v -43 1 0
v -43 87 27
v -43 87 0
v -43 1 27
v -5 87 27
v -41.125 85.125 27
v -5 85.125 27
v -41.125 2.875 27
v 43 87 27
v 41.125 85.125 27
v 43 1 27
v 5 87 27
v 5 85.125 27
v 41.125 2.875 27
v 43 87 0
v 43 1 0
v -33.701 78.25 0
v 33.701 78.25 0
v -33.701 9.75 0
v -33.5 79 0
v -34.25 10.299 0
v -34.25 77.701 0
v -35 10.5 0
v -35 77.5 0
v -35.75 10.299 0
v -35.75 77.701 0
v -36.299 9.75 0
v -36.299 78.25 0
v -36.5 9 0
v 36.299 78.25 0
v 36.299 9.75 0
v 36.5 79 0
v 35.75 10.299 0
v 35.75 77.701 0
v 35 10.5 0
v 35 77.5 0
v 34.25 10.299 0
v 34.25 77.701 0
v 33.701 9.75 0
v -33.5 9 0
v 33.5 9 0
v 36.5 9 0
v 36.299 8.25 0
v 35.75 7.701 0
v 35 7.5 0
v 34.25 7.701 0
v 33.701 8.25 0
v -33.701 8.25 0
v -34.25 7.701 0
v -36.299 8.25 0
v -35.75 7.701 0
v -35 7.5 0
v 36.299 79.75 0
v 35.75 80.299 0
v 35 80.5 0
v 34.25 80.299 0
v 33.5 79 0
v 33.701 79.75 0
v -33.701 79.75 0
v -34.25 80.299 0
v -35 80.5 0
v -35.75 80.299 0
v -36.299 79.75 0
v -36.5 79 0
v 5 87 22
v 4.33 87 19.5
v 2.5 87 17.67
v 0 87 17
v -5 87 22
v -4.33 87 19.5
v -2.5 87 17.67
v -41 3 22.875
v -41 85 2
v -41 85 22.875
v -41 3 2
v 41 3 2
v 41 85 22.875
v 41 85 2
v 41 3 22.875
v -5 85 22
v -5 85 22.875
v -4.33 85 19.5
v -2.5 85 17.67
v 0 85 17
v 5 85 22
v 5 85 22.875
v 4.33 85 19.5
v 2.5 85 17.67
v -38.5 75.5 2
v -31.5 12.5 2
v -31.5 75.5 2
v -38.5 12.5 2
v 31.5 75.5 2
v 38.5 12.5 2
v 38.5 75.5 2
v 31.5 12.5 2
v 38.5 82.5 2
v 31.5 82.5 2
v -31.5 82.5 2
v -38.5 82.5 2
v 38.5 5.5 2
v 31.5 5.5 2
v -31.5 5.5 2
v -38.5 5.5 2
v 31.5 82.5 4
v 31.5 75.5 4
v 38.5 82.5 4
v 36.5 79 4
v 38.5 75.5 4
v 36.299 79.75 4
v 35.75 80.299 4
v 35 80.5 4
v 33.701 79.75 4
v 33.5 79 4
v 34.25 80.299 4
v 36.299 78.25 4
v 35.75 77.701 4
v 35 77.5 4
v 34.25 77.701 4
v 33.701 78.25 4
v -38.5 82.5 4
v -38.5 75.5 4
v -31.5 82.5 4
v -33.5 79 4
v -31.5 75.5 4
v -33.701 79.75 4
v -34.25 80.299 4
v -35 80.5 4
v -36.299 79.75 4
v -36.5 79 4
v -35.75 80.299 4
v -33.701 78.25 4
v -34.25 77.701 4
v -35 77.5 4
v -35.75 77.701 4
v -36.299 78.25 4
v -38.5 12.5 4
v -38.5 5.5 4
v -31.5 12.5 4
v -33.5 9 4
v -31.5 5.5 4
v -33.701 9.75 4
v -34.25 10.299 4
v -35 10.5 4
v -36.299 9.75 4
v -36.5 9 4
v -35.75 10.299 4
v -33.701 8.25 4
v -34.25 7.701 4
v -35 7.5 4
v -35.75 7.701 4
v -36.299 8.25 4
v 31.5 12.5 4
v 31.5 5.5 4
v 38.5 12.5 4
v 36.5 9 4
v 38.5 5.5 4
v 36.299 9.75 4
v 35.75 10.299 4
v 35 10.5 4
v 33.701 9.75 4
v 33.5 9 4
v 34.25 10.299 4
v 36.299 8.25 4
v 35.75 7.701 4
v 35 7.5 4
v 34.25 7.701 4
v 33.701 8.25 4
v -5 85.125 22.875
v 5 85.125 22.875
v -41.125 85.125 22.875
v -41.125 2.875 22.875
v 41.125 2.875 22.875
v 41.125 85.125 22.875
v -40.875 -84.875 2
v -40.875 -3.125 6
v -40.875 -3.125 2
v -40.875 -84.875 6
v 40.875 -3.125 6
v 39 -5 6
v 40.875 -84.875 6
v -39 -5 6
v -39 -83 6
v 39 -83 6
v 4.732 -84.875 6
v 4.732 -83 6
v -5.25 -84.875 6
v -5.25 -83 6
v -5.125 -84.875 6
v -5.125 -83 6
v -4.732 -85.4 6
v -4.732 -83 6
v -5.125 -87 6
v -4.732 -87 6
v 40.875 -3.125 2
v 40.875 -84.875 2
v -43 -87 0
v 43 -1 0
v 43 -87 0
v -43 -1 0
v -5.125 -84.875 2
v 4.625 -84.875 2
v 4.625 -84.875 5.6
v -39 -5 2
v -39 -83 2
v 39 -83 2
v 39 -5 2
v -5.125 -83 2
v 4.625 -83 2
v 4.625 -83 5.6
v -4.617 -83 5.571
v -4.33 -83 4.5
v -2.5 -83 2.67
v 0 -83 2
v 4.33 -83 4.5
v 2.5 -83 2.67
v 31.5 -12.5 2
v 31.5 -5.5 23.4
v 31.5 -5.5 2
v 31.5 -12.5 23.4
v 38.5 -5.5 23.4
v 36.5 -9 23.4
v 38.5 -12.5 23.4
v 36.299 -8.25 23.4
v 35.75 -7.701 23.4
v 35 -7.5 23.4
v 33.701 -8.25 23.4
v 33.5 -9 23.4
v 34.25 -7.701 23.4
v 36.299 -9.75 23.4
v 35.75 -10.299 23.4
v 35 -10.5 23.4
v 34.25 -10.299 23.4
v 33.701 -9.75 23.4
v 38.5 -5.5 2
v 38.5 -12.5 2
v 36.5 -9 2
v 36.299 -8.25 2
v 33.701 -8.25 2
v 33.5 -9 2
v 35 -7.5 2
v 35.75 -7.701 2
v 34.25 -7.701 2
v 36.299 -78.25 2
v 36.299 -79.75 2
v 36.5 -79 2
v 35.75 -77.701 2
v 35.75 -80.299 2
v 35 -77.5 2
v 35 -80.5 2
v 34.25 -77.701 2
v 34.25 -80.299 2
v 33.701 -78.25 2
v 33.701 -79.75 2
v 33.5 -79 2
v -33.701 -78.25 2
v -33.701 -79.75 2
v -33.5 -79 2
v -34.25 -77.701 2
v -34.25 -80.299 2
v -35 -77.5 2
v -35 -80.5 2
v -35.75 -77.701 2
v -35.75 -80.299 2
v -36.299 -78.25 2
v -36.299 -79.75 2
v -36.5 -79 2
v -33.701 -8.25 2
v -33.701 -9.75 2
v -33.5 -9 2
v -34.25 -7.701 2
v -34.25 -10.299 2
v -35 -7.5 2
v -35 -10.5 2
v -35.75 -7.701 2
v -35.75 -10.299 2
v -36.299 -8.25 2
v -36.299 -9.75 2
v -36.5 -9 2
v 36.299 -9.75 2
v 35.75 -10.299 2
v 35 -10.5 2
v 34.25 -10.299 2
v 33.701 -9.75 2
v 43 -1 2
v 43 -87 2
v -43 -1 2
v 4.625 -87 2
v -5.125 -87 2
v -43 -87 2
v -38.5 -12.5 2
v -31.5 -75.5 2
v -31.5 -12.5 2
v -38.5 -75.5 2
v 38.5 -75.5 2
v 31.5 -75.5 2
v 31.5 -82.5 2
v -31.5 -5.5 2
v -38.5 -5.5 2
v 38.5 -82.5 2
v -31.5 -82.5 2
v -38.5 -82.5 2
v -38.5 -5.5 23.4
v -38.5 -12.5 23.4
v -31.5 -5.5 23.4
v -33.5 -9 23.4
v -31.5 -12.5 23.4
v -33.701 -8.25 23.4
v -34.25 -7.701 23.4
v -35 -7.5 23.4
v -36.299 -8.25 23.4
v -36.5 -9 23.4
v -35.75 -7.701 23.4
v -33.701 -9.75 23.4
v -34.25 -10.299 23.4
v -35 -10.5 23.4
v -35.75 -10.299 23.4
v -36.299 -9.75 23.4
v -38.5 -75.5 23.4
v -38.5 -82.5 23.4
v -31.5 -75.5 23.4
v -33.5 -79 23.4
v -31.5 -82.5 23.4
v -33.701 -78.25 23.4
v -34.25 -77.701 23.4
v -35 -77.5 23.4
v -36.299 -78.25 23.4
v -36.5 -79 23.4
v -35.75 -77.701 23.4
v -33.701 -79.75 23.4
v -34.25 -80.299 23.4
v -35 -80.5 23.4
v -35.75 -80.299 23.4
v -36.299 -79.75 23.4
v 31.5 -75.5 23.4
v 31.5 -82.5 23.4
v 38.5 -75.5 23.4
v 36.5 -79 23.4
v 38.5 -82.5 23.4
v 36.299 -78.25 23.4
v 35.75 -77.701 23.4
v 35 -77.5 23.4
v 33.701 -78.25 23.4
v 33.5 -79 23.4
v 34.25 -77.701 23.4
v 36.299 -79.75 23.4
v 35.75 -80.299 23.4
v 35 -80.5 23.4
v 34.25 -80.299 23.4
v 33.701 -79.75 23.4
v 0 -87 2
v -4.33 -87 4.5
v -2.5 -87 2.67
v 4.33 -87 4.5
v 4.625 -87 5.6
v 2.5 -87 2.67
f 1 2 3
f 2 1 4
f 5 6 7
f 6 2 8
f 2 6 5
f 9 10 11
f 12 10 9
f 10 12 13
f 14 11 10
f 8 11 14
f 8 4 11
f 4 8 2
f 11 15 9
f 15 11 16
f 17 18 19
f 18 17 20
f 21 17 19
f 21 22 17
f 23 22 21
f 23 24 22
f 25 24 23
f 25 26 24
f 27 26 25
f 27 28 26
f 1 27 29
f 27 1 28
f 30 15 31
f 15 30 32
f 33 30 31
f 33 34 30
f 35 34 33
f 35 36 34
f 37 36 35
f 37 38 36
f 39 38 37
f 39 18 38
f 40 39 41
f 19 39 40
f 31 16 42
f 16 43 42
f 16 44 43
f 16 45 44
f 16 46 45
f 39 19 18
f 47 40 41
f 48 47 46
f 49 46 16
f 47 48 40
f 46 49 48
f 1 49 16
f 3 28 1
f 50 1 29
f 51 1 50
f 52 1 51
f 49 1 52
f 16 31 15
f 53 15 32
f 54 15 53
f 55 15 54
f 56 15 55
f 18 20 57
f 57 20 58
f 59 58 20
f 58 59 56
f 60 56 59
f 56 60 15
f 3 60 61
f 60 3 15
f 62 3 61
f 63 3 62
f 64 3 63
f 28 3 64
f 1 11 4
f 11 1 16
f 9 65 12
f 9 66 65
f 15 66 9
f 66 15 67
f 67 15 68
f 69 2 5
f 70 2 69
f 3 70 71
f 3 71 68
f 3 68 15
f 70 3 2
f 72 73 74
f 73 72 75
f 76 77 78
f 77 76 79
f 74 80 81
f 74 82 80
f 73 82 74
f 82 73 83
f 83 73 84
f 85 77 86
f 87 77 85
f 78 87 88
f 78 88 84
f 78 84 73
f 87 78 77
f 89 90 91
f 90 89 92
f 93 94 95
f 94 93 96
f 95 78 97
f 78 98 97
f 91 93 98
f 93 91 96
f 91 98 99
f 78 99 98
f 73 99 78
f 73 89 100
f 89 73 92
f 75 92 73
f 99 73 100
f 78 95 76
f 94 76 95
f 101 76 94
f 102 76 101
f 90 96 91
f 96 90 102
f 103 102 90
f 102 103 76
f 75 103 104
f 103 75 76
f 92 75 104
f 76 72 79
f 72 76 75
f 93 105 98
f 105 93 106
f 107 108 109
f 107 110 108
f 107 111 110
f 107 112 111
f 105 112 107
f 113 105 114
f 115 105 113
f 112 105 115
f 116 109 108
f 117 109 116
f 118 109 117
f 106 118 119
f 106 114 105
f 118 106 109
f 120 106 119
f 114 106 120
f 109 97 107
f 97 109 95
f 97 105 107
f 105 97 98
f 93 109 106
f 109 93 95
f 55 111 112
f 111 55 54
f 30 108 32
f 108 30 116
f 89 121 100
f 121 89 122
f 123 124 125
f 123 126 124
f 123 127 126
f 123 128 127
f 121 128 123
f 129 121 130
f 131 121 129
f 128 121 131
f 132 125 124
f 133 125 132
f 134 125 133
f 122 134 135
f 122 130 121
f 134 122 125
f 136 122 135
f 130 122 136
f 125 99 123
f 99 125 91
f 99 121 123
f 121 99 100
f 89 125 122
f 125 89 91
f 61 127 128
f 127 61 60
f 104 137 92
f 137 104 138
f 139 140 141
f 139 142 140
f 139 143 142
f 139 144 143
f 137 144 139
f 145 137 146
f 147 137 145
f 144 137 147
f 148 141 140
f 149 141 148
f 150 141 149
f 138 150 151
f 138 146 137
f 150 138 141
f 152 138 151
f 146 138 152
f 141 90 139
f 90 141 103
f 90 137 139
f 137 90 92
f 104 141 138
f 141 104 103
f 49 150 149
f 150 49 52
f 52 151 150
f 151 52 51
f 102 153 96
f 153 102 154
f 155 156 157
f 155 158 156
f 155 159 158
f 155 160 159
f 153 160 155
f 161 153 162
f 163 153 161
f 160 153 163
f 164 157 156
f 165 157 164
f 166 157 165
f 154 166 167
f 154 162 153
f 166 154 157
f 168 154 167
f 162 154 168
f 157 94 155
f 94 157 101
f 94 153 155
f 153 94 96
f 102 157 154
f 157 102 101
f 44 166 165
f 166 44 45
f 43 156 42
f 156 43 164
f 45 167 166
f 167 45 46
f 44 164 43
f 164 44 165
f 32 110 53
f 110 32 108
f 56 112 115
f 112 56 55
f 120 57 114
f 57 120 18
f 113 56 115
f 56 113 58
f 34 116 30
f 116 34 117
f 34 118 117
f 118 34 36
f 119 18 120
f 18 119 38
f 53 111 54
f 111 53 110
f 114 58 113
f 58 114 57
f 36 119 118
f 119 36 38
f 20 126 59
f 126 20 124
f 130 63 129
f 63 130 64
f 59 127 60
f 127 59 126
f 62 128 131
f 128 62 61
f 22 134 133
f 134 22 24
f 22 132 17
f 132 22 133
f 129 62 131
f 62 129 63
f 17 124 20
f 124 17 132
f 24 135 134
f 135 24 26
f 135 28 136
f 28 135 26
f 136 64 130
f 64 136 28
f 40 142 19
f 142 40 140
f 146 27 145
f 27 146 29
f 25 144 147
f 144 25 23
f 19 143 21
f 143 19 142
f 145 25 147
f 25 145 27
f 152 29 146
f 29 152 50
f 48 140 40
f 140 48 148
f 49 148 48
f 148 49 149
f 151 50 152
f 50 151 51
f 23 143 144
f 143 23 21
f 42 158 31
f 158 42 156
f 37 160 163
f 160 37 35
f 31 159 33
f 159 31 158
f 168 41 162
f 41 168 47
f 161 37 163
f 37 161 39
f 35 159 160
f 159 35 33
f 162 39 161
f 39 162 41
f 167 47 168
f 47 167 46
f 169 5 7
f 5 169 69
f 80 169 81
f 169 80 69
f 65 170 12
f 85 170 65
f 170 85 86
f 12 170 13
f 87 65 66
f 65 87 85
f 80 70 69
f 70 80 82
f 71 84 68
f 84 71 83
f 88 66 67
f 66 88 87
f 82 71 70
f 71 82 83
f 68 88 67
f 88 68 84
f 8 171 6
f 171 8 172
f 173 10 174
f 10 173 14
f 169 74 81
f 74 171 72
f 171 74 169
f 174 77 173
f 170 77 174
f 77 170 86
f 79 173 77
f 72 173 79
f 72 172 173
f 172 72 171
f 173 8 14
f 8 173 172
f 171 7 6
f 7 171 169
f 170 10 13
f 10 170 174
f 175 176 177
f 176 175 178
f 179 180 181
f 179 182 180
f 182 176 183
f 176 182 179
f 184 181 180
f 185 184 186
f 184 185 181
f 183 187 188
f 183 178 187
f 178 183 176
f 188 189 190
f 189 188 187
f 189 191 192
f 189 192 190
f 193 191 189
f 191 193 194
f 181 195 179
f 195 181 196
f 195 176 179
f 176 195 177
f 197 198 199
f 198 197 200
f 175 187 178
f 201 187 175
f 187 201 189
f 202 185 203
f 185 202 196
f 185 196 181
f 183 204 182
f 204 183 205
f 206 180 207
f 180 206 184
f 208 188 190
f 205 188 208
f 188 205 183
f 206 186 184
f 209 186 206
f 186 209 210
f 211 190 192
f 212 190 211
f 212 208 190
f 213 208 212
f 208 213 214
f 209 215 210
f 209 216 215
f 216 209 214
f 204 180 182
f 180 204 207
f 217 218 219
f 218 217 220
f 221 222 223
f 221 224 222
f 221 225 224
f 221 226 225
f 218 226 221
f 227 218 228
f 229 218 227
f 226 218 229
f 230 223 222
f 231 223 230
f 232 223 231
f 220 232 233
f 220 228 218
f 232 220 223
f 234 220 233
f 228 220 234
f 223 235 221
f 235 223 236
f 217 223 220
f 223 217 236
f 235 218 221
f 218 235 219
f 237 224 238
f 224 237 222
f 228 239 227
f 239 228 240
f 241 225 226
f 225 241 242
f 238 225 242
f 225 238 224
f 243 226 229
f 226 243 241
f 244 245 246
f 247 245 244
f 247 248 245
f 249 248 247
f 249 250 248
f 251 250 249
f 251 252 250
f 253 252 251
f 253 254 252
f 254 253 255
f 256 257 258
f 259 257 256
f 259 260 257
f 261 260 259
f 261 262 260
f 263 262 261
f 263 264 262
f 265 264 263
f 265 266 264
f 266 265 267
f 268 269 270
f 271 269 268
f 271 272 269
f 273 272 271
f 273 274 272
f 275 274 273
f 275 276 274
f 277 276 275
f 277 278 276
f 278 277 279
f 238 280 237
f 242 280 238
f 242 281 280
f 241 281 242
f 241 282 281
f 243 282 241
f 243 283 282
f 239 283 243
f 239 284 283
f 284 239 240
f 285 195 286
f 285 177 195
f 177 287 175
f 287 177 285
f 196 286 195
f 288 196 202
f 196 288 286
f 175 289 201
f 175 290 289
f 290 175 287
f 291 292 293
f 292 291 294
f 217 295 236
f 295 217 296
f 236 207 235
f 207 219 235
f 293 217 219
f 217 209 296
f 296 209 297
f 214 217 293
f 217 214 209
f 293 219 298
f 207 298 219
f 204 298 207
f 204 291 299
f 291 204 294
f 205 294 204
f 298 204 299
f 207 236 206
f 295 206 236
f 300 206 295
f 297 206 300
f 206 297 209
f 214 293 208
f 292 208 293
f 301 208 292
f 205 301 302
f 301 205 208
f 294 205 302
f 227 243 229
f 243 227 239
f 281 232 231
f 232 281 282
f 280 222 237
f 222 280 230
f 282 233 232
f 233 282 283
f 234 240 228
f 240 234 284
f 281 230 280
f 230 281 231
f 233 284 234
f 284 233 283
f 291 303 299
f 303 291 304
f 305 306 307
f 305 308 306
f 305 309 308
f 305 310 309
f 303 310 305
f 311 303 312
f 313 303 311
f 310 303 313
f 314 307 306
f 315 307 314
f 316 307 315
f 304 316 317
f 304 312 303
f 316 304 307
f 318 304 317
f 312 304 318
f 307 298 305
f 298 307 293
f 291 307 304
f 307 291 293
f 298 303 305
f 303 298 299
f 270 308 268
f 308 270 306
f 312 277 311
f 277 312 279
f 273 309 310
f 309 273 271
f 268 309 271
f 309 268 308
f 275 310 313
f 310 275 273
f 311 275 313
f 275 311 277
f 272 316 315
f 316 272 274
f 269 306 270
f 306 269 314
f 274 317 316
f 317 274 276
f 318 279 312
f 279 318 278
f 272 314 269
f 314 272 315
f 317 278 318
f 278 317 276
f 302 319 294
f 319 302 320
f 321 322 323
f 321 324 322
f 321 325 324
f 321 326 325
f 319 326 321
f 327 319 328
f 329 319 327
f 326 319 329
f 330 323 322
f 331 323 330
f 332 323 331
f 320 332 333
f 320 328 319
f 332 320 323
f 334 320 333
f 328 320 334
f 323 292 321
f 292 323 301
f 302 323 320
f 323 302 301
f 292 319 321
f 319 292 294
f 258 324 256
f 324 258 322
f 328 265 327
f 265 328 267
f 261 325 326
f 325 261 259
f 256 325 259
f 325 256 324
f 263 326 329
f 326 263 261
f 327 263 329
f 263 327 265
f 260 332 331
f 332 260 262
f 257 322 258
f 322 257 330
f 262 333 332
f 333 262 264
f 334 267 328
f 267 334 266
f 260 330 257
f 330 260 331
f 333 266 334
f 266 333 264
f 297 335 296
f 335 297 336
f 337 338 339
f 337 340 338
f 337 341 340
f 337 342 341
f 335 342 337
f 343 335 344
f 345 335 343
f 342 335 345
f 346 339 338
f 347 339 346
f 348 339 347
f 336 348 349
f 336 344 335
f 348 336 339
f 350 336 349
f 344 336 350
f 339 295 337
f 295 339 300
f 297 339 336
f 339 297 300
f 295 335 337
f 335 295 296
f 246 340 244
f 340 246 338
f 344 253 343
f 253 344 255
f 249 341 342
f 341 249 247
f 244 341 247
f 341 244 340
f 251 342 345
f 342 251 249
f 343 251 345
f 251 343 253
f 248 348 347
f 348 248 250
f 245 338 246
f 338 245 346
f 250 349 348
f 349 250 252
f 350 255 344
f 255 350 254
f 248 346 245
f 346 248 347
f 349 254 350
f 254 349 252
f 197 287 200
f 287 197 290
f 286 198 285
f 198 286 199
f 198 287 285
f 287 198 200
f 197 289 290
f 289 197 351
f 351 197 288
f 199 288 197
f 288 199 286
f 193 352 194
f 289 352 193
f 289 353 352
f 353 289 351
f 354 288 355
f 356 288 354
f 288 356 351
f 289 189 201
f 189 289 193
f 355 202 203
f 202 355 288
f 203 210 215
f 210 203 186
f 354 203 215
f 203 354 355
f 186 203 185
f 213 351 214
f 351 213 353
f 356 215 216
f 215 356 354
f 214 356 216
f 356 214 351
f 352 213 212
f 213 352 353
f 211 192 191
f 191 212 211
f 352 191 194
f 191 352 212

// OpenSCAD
/*
 * A PCB-box to-be-printed, license CC-BY-SA 4.0.
 *
 * http://creativecommons.org/licenses/by-sa/4.0/
 *
 * Author L2K2
 * Version 0.1
 */

// Board dimensions.
x = 80;
y = 80;

// Internal extra spacing, one sided. 
dx = 1;
dy = 1;

// Wall thickness.
th = 2;

// Spacing in z-direction.
sp_below = 2;
sp_above = 23;
sp_seal = 4;

// For tight fits, i.e., the seal in the lid, some slack.
tolerance = 0.125;
eps = 0.001;

module mount_hole(x = 0, y = 0, z = 0, d = 5) {
    translate([x, y, 0])
    difference() {
        translate([-d / 2 - th, -d / 2 - th, 0])
        cube([d + 2 * th, d + 2 * th, th + z], center = false);
        translate([0, 0, th])
        cylinder(h = z + th, d = d, center = false, $fn = 12);
    }
}
module inverse_hole(x = 0, y = 0, z = 0, d = 5) {
    translate([x, y, -th])
    cylinder(h = z + 2 * th, d = d, center = false, $fn = 12);
}

// Main box.
translate([0, y / 2 + dy + th + 1, 0]) {
    difference() {
        union() {
            difference() {
                translate([-x / 2 - dx - th, -y / 2 - dy - th, 0])
                cube([x + 2 * dx + 2 * th, y + 2 * dy + 2 * th, th + sp_below + sp_above], center = false);
                translate([-x / 2 - dx, -y / 2 - dy, th])
                cube([x + 2 * dx, y + 2 * dy, th + sp_below + sp_above], center = false);
            }
            mount_hole(35, 35, sp_below, 3);
            mount_hole(-35, 35, sp_below, 3);
            mount_hole(-35, -35, sp_below, 3);
            mount_hole(35, -35, sp_below, 3);
        }
        
        inverse_hole(35, 35, sp_below, 3);
        inverse_hole(-35, 35, sp_below, 3);
        inverse_hole(-35, -35, sp_below, 3);
        inverse_hole(35, -35, sp_below, 3);
        
    
        translate([-5, y / 2,  th + sp_below + sp_above - 5])
        cube([10, 2 * th, th + 5], center = false);
        translate([0, y / 2, th + sp_below + sp_above - 5])
        rotate([-90, 0, 0])
        inverse_hole(0, 0, 10, 10);
        translate([-x / 2 - dx - tolerance, -y / 2 - dy - tolerance, th + sp_below + sp_above - sp_seal - tolerance])
        cube([x + 2 * dx + 2 * tolerance, y + 2 * dy + 2 * tolerance, tolerance + sp_seal + tolerance], center = false);
    }
}

// Lid.
translate([0, -y / 2 - dy - th - 1, 0]) {
    difference() {
        union() {
            translate([-x / 2 - dx - th, -y / 2 - dy - th, 0])
            cube([x + 2 * dx + 2 * th, y + 2 * dy + 2 * th, th], center = false);
            
            translate([-5 - tolerance, -y / 2 - dy - th, 0])
            cube([10 - 2 * tolerance, 2 * th, th + 5], center = false);
            
            difference() {
                union() {
                    translate([-x / 2 - dx + tolerance, -y / 2 - dy + tolerance, 0])
                    cube([x + 2 * dx - 2 * tolerance, y + 2 * dy - 2 * tolerance, th + sp_seal], center = false);
                }        
                translate([-x / 2 - dx + th, -y / 2 - dy + th, 0 ])
                cube([x + 2 * dx - 2 * th, y + 2 * dy - 2 * th, th + sp_seal + th], center = false);
            }
            mount_hole(35, 35, sp_above - 1.6, 3);
            mount_hole(-35, 35, sp_above - 1.6, 3);
            mount_hole(-35, -35, sp_above - 1.6, 3);
            mount_hole(35, -35, sp_above - 1.6, 3);
        }    
    translate([0, -y / 2 - 5, th + 5])
    rotate([-90, 0, 0])
    inverse_hole(0, 0, 10, 10);
    translate([-5 - 2 * tolerance, -y / 2 - dy - th - tolerance, th + sp_seal])
    cube([10 - 4 * tolerance, 2 * th + 2 * tolerance, th + 5], center = false);
}
}
